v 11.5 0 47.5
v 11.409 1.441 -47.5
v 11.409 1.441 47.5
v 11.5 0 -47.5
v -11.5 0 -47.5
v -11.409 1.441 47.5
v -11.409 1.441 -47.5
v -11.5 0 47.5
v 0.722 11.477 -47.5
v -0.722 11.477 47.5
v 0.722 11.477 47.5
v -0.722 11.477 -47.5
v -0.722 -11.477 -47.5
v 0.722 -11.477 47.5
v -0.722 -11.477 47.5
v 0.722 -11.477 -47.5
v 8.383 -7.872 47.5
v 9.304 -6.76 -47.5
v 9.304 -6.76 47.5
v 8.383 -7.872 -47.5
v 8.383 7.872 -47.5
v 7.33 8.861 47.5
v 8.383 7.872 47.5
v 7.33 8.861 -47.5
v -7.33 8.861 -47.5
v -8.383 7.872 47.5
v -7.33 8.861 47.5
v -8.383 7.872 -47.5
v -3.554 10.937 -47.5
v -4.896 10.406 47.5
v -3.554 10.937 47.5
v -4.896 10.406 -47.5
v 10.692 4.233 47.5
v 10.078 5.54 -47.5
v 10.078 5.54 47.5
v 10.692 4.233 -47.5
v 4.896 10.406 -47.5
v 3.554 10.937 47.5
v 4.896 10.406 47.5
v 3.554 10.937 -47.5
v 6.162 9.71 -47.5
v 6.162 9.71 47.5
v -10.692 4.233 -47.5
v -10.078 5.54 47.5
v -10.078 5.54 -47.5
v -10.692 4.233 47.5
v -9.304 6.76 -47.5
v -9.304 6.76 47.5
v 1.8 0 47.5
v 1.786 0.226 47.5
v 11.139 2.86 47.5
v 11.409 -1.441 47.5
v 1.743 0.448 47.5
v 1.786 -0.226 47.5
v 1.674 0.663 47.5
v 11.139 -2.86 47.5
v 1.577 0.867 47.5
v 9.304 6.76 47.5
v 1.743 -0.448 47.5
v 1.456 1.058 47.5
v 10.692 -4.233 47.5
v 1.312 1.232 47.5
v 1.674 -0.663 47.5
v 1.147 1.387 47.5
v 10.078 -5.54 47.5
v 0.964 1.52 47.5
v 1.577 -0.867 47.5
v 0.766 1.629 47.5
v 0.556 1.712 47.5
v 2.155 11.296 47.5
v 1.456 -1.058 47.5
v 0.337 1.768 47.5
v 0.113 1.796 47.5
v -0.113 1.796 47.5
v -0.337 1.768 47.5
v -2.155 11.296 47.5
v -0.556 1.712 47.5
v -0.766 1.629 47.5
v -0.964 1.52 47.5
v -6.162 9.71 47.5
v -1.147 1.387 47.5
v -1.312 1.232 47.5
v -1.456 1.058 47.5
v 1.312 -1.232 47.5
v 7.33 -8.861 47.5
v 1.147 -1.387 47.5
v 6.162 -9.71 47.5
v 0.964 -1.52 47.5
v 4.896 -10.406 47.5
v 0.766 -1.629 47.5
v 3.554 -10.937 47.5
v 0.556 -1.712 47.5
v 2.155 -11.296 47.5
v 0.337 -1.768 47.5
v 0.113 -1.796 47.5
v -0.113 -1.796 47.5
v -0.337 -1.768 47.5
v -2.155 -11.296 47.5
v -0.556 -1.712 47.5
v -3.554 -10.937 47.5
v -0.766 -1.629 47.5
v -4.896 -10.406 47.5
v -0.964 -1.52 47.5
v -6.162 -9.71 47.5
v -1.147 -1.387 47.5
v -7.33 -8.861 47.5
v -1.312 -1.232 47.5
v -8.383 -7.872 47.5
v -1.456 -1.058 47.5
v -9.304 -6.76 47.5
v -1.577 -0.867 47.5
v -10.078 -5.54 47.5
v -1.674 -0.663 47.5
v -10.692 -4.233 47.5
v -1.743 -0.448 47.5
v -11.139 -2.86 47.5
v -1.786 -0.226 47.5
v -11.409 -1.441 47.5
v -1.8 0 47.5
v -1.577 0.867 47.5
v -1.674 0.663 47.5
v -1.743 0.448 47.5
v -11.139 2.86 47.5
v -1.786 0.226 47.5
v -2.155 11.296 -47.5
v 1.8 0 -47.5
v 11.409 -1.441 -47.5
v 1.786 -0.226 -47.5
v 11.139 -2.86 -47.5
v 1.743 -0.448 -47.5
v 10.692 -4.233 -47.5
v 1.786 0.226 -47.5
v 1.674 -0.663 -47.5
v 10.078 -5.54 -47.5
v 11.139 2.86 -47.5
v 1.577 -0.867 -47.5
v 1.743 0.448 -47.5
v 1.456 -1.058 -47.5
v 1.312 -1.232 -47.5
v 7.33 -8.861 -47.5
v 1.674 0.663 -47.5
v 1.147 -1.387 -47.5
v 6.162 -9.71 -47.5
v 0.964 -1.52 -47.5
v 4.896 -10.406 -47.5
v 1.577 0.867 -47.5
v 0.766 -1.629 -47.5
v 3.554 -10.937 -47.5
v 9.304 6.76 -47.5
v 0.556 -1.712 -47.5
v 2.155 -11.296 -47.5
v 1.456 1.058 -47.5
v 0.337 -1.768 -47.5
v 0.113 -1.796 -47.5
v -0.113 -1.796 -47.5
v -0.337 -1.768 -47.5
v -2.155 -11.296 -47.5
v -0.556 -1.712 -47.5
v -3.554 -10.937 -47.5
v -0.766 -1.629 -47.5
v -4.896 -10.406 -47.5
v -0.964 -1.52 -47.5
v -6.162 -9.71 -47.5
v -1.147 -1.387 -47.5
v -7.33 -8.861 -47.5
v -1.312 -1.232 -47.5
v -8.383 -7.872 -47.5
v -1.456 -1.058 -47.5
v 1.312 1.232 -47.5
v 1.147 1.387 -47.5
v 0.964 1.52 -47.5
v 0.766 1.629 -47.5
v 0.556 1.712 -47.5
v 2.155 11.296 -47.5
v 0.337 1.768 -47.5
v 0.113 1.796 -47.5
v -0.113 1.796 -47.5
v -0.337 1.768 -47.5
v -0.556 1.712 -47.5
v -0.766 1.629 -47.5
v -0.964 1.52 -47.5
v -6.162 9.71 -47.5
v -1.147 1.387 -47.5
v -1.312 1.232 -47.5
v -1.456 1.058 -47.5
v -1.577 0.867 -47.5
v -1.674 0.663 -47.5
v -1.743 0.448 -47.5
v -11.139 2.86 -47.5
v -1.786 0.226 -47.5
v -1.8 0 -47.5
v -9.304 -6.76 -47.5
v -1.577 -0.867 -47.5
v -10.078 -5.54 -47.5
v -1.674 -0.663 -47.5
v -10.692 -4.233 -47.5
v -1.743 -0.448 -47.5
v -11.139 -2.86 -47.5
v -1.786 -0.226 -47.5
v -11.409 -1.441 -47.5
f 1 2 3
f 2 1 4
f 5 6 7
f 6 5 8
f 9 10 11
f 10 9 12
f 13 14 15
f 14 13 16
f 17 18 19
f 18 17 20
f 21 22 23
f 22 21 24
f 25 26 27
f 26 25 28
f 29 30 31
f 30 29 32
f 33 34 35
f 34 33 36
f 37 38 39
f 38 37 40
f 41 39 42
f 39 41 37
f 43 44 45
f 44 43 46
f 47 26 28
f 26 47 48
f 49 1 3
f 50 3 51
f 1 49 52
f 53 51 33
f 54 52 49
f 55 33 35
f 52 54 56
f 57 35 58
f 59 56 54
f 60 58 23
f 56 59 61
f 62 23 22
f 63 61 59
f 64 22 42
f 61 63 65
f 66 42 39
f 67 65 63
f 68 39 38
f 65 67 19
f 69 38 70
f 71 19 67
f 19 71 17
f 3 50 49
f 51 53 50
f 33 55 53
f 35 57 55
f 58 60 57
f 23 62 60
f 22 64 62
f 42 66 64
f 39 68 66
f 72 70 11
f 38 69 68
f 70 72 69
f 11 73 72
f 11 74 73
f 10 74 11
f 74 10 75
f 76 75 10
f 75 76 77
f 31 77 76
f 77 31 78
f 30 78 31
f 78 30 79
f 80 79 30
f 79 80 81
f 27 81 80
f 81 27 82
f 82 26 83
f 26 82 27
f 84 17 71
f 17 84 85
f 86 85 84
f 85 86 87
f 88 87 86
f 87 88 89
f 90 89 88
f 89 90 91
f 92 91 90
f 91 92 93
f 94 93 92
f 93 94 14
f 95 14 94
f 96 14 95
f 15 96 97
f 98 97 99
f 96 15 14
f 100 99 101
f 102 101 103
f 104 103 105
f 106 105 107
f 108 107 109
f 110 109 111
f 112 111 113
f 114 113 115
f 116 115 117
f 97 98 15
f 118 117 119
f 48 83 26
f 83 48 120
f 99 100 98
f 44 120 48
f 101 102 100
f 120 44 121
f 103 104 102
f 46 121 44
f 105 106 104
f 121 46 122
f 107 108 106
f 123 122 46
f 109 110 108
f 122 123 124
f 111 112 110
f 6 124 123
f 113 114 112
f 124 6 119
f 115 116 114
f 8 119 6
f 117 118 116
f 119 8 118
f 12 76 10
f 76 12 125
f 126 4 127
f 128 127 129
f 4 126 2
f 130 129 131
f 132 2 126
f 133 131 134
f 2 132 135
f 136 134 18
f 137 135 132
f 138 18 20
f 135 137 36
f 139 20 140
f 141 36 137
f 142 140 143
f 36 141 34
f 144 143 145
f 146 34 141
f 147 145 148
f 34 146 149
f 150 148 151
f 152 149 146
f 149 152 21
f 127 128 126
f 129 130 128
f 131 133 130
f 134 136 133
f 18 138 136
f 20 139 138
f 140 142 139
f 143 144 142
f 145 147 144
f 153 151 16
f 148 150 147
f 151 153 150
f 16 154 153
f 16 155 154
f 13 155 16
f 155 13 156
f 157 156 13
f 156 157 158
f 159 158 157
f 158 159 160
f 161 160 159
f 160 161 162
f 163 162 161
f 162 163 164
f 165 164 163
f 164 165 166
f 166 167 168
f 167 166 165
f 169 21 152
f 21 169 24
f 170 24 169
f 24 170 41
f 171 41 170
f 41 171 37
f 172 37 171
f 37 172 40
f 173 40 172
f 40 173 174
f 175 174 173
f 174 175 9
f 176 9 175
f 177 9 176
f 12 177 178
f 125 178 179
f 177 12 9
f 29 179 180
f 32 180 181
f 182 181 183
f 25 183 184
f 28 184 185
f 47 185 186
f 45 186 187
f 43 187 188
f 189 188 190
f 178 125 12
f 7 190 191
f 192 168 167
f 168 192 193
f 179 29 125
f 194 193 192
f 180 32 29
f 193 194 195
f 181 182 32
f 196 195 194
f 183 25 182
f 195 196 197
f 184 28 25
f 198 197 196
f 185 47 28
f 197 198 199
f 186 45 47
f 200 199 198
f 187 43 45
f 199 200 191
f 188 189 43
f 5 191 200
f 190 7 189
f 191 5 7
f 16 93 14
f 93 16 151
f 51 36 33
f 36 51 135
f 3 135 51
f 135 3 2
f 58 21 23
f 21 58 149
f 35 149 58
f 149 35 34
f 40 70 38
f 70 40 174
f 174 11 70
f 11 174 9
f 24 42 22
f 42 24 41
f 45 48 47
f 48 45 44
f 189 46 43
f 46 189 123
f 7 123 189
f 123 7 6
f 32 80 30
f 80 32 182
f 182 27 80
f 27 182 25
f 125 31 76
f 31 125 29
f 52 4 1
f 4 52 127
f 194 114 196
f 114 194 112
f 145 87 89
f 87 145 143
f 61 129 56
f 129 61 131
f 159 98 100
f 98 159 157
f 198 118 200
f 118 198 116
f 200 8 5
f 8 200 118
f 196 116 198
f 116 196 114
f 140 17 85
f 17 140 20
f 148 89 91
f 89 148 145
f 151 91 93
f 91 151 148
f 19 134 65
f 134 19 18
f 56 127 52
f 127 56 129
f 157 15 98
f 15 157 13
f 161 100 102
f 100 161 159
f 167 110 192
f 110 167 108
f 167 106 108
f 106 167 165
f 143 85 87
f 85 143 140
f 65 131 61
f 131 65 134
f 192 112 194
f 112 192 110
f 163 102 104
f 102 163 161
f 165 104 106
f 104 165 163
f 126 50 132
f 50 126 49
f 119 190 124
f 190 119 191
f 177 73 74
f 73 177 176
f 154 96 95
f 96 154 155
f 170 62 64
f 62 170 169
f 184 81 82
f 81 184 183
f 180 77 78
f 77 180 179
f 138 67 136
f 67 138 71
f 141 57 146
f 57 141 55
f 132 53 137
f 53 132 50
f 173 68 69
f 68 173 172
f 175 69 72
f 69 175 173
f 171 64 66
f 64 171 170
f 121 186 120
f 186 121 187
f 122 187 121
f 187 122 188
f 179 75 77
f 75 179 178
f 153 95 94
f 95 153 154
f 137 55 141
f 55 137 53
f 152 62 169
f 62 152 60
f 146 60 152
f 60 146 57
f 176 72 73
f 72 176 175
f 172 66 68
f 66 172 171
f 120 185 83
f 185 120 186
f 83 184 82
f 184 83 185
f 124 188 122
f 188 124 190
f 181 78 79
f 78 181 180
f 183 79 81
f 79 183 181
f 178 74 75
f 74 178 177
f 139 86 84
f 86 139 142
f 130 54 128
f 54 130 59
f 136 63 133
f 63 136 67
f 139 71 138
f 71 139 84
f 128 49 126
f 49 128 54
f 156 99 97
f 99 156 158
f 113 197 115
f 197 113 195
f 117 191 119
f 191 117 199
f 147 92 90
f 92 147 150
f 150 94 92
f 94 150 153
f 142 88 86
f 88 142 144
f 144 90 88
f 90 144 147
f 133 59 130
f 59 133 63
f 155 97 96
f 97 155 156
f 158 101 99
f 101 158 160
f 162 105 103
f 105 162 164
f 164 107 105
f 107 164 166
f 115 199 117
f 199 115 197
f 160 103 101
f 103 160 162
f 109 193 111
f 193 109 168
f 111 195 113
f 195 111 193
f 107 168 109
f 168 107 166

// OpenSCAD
$fn = 50;


difference() {
	union() {
		translate(v = [0, 0, -47.5000000000]) {
			cylinder(h = 95, r = 11.5000000000);
		}
	}
	union() {
		translate(v = [0, 0, -100.0000000000]) {
			cylinder(h = 200, r = 1.8000000000);
		}
	}
}
